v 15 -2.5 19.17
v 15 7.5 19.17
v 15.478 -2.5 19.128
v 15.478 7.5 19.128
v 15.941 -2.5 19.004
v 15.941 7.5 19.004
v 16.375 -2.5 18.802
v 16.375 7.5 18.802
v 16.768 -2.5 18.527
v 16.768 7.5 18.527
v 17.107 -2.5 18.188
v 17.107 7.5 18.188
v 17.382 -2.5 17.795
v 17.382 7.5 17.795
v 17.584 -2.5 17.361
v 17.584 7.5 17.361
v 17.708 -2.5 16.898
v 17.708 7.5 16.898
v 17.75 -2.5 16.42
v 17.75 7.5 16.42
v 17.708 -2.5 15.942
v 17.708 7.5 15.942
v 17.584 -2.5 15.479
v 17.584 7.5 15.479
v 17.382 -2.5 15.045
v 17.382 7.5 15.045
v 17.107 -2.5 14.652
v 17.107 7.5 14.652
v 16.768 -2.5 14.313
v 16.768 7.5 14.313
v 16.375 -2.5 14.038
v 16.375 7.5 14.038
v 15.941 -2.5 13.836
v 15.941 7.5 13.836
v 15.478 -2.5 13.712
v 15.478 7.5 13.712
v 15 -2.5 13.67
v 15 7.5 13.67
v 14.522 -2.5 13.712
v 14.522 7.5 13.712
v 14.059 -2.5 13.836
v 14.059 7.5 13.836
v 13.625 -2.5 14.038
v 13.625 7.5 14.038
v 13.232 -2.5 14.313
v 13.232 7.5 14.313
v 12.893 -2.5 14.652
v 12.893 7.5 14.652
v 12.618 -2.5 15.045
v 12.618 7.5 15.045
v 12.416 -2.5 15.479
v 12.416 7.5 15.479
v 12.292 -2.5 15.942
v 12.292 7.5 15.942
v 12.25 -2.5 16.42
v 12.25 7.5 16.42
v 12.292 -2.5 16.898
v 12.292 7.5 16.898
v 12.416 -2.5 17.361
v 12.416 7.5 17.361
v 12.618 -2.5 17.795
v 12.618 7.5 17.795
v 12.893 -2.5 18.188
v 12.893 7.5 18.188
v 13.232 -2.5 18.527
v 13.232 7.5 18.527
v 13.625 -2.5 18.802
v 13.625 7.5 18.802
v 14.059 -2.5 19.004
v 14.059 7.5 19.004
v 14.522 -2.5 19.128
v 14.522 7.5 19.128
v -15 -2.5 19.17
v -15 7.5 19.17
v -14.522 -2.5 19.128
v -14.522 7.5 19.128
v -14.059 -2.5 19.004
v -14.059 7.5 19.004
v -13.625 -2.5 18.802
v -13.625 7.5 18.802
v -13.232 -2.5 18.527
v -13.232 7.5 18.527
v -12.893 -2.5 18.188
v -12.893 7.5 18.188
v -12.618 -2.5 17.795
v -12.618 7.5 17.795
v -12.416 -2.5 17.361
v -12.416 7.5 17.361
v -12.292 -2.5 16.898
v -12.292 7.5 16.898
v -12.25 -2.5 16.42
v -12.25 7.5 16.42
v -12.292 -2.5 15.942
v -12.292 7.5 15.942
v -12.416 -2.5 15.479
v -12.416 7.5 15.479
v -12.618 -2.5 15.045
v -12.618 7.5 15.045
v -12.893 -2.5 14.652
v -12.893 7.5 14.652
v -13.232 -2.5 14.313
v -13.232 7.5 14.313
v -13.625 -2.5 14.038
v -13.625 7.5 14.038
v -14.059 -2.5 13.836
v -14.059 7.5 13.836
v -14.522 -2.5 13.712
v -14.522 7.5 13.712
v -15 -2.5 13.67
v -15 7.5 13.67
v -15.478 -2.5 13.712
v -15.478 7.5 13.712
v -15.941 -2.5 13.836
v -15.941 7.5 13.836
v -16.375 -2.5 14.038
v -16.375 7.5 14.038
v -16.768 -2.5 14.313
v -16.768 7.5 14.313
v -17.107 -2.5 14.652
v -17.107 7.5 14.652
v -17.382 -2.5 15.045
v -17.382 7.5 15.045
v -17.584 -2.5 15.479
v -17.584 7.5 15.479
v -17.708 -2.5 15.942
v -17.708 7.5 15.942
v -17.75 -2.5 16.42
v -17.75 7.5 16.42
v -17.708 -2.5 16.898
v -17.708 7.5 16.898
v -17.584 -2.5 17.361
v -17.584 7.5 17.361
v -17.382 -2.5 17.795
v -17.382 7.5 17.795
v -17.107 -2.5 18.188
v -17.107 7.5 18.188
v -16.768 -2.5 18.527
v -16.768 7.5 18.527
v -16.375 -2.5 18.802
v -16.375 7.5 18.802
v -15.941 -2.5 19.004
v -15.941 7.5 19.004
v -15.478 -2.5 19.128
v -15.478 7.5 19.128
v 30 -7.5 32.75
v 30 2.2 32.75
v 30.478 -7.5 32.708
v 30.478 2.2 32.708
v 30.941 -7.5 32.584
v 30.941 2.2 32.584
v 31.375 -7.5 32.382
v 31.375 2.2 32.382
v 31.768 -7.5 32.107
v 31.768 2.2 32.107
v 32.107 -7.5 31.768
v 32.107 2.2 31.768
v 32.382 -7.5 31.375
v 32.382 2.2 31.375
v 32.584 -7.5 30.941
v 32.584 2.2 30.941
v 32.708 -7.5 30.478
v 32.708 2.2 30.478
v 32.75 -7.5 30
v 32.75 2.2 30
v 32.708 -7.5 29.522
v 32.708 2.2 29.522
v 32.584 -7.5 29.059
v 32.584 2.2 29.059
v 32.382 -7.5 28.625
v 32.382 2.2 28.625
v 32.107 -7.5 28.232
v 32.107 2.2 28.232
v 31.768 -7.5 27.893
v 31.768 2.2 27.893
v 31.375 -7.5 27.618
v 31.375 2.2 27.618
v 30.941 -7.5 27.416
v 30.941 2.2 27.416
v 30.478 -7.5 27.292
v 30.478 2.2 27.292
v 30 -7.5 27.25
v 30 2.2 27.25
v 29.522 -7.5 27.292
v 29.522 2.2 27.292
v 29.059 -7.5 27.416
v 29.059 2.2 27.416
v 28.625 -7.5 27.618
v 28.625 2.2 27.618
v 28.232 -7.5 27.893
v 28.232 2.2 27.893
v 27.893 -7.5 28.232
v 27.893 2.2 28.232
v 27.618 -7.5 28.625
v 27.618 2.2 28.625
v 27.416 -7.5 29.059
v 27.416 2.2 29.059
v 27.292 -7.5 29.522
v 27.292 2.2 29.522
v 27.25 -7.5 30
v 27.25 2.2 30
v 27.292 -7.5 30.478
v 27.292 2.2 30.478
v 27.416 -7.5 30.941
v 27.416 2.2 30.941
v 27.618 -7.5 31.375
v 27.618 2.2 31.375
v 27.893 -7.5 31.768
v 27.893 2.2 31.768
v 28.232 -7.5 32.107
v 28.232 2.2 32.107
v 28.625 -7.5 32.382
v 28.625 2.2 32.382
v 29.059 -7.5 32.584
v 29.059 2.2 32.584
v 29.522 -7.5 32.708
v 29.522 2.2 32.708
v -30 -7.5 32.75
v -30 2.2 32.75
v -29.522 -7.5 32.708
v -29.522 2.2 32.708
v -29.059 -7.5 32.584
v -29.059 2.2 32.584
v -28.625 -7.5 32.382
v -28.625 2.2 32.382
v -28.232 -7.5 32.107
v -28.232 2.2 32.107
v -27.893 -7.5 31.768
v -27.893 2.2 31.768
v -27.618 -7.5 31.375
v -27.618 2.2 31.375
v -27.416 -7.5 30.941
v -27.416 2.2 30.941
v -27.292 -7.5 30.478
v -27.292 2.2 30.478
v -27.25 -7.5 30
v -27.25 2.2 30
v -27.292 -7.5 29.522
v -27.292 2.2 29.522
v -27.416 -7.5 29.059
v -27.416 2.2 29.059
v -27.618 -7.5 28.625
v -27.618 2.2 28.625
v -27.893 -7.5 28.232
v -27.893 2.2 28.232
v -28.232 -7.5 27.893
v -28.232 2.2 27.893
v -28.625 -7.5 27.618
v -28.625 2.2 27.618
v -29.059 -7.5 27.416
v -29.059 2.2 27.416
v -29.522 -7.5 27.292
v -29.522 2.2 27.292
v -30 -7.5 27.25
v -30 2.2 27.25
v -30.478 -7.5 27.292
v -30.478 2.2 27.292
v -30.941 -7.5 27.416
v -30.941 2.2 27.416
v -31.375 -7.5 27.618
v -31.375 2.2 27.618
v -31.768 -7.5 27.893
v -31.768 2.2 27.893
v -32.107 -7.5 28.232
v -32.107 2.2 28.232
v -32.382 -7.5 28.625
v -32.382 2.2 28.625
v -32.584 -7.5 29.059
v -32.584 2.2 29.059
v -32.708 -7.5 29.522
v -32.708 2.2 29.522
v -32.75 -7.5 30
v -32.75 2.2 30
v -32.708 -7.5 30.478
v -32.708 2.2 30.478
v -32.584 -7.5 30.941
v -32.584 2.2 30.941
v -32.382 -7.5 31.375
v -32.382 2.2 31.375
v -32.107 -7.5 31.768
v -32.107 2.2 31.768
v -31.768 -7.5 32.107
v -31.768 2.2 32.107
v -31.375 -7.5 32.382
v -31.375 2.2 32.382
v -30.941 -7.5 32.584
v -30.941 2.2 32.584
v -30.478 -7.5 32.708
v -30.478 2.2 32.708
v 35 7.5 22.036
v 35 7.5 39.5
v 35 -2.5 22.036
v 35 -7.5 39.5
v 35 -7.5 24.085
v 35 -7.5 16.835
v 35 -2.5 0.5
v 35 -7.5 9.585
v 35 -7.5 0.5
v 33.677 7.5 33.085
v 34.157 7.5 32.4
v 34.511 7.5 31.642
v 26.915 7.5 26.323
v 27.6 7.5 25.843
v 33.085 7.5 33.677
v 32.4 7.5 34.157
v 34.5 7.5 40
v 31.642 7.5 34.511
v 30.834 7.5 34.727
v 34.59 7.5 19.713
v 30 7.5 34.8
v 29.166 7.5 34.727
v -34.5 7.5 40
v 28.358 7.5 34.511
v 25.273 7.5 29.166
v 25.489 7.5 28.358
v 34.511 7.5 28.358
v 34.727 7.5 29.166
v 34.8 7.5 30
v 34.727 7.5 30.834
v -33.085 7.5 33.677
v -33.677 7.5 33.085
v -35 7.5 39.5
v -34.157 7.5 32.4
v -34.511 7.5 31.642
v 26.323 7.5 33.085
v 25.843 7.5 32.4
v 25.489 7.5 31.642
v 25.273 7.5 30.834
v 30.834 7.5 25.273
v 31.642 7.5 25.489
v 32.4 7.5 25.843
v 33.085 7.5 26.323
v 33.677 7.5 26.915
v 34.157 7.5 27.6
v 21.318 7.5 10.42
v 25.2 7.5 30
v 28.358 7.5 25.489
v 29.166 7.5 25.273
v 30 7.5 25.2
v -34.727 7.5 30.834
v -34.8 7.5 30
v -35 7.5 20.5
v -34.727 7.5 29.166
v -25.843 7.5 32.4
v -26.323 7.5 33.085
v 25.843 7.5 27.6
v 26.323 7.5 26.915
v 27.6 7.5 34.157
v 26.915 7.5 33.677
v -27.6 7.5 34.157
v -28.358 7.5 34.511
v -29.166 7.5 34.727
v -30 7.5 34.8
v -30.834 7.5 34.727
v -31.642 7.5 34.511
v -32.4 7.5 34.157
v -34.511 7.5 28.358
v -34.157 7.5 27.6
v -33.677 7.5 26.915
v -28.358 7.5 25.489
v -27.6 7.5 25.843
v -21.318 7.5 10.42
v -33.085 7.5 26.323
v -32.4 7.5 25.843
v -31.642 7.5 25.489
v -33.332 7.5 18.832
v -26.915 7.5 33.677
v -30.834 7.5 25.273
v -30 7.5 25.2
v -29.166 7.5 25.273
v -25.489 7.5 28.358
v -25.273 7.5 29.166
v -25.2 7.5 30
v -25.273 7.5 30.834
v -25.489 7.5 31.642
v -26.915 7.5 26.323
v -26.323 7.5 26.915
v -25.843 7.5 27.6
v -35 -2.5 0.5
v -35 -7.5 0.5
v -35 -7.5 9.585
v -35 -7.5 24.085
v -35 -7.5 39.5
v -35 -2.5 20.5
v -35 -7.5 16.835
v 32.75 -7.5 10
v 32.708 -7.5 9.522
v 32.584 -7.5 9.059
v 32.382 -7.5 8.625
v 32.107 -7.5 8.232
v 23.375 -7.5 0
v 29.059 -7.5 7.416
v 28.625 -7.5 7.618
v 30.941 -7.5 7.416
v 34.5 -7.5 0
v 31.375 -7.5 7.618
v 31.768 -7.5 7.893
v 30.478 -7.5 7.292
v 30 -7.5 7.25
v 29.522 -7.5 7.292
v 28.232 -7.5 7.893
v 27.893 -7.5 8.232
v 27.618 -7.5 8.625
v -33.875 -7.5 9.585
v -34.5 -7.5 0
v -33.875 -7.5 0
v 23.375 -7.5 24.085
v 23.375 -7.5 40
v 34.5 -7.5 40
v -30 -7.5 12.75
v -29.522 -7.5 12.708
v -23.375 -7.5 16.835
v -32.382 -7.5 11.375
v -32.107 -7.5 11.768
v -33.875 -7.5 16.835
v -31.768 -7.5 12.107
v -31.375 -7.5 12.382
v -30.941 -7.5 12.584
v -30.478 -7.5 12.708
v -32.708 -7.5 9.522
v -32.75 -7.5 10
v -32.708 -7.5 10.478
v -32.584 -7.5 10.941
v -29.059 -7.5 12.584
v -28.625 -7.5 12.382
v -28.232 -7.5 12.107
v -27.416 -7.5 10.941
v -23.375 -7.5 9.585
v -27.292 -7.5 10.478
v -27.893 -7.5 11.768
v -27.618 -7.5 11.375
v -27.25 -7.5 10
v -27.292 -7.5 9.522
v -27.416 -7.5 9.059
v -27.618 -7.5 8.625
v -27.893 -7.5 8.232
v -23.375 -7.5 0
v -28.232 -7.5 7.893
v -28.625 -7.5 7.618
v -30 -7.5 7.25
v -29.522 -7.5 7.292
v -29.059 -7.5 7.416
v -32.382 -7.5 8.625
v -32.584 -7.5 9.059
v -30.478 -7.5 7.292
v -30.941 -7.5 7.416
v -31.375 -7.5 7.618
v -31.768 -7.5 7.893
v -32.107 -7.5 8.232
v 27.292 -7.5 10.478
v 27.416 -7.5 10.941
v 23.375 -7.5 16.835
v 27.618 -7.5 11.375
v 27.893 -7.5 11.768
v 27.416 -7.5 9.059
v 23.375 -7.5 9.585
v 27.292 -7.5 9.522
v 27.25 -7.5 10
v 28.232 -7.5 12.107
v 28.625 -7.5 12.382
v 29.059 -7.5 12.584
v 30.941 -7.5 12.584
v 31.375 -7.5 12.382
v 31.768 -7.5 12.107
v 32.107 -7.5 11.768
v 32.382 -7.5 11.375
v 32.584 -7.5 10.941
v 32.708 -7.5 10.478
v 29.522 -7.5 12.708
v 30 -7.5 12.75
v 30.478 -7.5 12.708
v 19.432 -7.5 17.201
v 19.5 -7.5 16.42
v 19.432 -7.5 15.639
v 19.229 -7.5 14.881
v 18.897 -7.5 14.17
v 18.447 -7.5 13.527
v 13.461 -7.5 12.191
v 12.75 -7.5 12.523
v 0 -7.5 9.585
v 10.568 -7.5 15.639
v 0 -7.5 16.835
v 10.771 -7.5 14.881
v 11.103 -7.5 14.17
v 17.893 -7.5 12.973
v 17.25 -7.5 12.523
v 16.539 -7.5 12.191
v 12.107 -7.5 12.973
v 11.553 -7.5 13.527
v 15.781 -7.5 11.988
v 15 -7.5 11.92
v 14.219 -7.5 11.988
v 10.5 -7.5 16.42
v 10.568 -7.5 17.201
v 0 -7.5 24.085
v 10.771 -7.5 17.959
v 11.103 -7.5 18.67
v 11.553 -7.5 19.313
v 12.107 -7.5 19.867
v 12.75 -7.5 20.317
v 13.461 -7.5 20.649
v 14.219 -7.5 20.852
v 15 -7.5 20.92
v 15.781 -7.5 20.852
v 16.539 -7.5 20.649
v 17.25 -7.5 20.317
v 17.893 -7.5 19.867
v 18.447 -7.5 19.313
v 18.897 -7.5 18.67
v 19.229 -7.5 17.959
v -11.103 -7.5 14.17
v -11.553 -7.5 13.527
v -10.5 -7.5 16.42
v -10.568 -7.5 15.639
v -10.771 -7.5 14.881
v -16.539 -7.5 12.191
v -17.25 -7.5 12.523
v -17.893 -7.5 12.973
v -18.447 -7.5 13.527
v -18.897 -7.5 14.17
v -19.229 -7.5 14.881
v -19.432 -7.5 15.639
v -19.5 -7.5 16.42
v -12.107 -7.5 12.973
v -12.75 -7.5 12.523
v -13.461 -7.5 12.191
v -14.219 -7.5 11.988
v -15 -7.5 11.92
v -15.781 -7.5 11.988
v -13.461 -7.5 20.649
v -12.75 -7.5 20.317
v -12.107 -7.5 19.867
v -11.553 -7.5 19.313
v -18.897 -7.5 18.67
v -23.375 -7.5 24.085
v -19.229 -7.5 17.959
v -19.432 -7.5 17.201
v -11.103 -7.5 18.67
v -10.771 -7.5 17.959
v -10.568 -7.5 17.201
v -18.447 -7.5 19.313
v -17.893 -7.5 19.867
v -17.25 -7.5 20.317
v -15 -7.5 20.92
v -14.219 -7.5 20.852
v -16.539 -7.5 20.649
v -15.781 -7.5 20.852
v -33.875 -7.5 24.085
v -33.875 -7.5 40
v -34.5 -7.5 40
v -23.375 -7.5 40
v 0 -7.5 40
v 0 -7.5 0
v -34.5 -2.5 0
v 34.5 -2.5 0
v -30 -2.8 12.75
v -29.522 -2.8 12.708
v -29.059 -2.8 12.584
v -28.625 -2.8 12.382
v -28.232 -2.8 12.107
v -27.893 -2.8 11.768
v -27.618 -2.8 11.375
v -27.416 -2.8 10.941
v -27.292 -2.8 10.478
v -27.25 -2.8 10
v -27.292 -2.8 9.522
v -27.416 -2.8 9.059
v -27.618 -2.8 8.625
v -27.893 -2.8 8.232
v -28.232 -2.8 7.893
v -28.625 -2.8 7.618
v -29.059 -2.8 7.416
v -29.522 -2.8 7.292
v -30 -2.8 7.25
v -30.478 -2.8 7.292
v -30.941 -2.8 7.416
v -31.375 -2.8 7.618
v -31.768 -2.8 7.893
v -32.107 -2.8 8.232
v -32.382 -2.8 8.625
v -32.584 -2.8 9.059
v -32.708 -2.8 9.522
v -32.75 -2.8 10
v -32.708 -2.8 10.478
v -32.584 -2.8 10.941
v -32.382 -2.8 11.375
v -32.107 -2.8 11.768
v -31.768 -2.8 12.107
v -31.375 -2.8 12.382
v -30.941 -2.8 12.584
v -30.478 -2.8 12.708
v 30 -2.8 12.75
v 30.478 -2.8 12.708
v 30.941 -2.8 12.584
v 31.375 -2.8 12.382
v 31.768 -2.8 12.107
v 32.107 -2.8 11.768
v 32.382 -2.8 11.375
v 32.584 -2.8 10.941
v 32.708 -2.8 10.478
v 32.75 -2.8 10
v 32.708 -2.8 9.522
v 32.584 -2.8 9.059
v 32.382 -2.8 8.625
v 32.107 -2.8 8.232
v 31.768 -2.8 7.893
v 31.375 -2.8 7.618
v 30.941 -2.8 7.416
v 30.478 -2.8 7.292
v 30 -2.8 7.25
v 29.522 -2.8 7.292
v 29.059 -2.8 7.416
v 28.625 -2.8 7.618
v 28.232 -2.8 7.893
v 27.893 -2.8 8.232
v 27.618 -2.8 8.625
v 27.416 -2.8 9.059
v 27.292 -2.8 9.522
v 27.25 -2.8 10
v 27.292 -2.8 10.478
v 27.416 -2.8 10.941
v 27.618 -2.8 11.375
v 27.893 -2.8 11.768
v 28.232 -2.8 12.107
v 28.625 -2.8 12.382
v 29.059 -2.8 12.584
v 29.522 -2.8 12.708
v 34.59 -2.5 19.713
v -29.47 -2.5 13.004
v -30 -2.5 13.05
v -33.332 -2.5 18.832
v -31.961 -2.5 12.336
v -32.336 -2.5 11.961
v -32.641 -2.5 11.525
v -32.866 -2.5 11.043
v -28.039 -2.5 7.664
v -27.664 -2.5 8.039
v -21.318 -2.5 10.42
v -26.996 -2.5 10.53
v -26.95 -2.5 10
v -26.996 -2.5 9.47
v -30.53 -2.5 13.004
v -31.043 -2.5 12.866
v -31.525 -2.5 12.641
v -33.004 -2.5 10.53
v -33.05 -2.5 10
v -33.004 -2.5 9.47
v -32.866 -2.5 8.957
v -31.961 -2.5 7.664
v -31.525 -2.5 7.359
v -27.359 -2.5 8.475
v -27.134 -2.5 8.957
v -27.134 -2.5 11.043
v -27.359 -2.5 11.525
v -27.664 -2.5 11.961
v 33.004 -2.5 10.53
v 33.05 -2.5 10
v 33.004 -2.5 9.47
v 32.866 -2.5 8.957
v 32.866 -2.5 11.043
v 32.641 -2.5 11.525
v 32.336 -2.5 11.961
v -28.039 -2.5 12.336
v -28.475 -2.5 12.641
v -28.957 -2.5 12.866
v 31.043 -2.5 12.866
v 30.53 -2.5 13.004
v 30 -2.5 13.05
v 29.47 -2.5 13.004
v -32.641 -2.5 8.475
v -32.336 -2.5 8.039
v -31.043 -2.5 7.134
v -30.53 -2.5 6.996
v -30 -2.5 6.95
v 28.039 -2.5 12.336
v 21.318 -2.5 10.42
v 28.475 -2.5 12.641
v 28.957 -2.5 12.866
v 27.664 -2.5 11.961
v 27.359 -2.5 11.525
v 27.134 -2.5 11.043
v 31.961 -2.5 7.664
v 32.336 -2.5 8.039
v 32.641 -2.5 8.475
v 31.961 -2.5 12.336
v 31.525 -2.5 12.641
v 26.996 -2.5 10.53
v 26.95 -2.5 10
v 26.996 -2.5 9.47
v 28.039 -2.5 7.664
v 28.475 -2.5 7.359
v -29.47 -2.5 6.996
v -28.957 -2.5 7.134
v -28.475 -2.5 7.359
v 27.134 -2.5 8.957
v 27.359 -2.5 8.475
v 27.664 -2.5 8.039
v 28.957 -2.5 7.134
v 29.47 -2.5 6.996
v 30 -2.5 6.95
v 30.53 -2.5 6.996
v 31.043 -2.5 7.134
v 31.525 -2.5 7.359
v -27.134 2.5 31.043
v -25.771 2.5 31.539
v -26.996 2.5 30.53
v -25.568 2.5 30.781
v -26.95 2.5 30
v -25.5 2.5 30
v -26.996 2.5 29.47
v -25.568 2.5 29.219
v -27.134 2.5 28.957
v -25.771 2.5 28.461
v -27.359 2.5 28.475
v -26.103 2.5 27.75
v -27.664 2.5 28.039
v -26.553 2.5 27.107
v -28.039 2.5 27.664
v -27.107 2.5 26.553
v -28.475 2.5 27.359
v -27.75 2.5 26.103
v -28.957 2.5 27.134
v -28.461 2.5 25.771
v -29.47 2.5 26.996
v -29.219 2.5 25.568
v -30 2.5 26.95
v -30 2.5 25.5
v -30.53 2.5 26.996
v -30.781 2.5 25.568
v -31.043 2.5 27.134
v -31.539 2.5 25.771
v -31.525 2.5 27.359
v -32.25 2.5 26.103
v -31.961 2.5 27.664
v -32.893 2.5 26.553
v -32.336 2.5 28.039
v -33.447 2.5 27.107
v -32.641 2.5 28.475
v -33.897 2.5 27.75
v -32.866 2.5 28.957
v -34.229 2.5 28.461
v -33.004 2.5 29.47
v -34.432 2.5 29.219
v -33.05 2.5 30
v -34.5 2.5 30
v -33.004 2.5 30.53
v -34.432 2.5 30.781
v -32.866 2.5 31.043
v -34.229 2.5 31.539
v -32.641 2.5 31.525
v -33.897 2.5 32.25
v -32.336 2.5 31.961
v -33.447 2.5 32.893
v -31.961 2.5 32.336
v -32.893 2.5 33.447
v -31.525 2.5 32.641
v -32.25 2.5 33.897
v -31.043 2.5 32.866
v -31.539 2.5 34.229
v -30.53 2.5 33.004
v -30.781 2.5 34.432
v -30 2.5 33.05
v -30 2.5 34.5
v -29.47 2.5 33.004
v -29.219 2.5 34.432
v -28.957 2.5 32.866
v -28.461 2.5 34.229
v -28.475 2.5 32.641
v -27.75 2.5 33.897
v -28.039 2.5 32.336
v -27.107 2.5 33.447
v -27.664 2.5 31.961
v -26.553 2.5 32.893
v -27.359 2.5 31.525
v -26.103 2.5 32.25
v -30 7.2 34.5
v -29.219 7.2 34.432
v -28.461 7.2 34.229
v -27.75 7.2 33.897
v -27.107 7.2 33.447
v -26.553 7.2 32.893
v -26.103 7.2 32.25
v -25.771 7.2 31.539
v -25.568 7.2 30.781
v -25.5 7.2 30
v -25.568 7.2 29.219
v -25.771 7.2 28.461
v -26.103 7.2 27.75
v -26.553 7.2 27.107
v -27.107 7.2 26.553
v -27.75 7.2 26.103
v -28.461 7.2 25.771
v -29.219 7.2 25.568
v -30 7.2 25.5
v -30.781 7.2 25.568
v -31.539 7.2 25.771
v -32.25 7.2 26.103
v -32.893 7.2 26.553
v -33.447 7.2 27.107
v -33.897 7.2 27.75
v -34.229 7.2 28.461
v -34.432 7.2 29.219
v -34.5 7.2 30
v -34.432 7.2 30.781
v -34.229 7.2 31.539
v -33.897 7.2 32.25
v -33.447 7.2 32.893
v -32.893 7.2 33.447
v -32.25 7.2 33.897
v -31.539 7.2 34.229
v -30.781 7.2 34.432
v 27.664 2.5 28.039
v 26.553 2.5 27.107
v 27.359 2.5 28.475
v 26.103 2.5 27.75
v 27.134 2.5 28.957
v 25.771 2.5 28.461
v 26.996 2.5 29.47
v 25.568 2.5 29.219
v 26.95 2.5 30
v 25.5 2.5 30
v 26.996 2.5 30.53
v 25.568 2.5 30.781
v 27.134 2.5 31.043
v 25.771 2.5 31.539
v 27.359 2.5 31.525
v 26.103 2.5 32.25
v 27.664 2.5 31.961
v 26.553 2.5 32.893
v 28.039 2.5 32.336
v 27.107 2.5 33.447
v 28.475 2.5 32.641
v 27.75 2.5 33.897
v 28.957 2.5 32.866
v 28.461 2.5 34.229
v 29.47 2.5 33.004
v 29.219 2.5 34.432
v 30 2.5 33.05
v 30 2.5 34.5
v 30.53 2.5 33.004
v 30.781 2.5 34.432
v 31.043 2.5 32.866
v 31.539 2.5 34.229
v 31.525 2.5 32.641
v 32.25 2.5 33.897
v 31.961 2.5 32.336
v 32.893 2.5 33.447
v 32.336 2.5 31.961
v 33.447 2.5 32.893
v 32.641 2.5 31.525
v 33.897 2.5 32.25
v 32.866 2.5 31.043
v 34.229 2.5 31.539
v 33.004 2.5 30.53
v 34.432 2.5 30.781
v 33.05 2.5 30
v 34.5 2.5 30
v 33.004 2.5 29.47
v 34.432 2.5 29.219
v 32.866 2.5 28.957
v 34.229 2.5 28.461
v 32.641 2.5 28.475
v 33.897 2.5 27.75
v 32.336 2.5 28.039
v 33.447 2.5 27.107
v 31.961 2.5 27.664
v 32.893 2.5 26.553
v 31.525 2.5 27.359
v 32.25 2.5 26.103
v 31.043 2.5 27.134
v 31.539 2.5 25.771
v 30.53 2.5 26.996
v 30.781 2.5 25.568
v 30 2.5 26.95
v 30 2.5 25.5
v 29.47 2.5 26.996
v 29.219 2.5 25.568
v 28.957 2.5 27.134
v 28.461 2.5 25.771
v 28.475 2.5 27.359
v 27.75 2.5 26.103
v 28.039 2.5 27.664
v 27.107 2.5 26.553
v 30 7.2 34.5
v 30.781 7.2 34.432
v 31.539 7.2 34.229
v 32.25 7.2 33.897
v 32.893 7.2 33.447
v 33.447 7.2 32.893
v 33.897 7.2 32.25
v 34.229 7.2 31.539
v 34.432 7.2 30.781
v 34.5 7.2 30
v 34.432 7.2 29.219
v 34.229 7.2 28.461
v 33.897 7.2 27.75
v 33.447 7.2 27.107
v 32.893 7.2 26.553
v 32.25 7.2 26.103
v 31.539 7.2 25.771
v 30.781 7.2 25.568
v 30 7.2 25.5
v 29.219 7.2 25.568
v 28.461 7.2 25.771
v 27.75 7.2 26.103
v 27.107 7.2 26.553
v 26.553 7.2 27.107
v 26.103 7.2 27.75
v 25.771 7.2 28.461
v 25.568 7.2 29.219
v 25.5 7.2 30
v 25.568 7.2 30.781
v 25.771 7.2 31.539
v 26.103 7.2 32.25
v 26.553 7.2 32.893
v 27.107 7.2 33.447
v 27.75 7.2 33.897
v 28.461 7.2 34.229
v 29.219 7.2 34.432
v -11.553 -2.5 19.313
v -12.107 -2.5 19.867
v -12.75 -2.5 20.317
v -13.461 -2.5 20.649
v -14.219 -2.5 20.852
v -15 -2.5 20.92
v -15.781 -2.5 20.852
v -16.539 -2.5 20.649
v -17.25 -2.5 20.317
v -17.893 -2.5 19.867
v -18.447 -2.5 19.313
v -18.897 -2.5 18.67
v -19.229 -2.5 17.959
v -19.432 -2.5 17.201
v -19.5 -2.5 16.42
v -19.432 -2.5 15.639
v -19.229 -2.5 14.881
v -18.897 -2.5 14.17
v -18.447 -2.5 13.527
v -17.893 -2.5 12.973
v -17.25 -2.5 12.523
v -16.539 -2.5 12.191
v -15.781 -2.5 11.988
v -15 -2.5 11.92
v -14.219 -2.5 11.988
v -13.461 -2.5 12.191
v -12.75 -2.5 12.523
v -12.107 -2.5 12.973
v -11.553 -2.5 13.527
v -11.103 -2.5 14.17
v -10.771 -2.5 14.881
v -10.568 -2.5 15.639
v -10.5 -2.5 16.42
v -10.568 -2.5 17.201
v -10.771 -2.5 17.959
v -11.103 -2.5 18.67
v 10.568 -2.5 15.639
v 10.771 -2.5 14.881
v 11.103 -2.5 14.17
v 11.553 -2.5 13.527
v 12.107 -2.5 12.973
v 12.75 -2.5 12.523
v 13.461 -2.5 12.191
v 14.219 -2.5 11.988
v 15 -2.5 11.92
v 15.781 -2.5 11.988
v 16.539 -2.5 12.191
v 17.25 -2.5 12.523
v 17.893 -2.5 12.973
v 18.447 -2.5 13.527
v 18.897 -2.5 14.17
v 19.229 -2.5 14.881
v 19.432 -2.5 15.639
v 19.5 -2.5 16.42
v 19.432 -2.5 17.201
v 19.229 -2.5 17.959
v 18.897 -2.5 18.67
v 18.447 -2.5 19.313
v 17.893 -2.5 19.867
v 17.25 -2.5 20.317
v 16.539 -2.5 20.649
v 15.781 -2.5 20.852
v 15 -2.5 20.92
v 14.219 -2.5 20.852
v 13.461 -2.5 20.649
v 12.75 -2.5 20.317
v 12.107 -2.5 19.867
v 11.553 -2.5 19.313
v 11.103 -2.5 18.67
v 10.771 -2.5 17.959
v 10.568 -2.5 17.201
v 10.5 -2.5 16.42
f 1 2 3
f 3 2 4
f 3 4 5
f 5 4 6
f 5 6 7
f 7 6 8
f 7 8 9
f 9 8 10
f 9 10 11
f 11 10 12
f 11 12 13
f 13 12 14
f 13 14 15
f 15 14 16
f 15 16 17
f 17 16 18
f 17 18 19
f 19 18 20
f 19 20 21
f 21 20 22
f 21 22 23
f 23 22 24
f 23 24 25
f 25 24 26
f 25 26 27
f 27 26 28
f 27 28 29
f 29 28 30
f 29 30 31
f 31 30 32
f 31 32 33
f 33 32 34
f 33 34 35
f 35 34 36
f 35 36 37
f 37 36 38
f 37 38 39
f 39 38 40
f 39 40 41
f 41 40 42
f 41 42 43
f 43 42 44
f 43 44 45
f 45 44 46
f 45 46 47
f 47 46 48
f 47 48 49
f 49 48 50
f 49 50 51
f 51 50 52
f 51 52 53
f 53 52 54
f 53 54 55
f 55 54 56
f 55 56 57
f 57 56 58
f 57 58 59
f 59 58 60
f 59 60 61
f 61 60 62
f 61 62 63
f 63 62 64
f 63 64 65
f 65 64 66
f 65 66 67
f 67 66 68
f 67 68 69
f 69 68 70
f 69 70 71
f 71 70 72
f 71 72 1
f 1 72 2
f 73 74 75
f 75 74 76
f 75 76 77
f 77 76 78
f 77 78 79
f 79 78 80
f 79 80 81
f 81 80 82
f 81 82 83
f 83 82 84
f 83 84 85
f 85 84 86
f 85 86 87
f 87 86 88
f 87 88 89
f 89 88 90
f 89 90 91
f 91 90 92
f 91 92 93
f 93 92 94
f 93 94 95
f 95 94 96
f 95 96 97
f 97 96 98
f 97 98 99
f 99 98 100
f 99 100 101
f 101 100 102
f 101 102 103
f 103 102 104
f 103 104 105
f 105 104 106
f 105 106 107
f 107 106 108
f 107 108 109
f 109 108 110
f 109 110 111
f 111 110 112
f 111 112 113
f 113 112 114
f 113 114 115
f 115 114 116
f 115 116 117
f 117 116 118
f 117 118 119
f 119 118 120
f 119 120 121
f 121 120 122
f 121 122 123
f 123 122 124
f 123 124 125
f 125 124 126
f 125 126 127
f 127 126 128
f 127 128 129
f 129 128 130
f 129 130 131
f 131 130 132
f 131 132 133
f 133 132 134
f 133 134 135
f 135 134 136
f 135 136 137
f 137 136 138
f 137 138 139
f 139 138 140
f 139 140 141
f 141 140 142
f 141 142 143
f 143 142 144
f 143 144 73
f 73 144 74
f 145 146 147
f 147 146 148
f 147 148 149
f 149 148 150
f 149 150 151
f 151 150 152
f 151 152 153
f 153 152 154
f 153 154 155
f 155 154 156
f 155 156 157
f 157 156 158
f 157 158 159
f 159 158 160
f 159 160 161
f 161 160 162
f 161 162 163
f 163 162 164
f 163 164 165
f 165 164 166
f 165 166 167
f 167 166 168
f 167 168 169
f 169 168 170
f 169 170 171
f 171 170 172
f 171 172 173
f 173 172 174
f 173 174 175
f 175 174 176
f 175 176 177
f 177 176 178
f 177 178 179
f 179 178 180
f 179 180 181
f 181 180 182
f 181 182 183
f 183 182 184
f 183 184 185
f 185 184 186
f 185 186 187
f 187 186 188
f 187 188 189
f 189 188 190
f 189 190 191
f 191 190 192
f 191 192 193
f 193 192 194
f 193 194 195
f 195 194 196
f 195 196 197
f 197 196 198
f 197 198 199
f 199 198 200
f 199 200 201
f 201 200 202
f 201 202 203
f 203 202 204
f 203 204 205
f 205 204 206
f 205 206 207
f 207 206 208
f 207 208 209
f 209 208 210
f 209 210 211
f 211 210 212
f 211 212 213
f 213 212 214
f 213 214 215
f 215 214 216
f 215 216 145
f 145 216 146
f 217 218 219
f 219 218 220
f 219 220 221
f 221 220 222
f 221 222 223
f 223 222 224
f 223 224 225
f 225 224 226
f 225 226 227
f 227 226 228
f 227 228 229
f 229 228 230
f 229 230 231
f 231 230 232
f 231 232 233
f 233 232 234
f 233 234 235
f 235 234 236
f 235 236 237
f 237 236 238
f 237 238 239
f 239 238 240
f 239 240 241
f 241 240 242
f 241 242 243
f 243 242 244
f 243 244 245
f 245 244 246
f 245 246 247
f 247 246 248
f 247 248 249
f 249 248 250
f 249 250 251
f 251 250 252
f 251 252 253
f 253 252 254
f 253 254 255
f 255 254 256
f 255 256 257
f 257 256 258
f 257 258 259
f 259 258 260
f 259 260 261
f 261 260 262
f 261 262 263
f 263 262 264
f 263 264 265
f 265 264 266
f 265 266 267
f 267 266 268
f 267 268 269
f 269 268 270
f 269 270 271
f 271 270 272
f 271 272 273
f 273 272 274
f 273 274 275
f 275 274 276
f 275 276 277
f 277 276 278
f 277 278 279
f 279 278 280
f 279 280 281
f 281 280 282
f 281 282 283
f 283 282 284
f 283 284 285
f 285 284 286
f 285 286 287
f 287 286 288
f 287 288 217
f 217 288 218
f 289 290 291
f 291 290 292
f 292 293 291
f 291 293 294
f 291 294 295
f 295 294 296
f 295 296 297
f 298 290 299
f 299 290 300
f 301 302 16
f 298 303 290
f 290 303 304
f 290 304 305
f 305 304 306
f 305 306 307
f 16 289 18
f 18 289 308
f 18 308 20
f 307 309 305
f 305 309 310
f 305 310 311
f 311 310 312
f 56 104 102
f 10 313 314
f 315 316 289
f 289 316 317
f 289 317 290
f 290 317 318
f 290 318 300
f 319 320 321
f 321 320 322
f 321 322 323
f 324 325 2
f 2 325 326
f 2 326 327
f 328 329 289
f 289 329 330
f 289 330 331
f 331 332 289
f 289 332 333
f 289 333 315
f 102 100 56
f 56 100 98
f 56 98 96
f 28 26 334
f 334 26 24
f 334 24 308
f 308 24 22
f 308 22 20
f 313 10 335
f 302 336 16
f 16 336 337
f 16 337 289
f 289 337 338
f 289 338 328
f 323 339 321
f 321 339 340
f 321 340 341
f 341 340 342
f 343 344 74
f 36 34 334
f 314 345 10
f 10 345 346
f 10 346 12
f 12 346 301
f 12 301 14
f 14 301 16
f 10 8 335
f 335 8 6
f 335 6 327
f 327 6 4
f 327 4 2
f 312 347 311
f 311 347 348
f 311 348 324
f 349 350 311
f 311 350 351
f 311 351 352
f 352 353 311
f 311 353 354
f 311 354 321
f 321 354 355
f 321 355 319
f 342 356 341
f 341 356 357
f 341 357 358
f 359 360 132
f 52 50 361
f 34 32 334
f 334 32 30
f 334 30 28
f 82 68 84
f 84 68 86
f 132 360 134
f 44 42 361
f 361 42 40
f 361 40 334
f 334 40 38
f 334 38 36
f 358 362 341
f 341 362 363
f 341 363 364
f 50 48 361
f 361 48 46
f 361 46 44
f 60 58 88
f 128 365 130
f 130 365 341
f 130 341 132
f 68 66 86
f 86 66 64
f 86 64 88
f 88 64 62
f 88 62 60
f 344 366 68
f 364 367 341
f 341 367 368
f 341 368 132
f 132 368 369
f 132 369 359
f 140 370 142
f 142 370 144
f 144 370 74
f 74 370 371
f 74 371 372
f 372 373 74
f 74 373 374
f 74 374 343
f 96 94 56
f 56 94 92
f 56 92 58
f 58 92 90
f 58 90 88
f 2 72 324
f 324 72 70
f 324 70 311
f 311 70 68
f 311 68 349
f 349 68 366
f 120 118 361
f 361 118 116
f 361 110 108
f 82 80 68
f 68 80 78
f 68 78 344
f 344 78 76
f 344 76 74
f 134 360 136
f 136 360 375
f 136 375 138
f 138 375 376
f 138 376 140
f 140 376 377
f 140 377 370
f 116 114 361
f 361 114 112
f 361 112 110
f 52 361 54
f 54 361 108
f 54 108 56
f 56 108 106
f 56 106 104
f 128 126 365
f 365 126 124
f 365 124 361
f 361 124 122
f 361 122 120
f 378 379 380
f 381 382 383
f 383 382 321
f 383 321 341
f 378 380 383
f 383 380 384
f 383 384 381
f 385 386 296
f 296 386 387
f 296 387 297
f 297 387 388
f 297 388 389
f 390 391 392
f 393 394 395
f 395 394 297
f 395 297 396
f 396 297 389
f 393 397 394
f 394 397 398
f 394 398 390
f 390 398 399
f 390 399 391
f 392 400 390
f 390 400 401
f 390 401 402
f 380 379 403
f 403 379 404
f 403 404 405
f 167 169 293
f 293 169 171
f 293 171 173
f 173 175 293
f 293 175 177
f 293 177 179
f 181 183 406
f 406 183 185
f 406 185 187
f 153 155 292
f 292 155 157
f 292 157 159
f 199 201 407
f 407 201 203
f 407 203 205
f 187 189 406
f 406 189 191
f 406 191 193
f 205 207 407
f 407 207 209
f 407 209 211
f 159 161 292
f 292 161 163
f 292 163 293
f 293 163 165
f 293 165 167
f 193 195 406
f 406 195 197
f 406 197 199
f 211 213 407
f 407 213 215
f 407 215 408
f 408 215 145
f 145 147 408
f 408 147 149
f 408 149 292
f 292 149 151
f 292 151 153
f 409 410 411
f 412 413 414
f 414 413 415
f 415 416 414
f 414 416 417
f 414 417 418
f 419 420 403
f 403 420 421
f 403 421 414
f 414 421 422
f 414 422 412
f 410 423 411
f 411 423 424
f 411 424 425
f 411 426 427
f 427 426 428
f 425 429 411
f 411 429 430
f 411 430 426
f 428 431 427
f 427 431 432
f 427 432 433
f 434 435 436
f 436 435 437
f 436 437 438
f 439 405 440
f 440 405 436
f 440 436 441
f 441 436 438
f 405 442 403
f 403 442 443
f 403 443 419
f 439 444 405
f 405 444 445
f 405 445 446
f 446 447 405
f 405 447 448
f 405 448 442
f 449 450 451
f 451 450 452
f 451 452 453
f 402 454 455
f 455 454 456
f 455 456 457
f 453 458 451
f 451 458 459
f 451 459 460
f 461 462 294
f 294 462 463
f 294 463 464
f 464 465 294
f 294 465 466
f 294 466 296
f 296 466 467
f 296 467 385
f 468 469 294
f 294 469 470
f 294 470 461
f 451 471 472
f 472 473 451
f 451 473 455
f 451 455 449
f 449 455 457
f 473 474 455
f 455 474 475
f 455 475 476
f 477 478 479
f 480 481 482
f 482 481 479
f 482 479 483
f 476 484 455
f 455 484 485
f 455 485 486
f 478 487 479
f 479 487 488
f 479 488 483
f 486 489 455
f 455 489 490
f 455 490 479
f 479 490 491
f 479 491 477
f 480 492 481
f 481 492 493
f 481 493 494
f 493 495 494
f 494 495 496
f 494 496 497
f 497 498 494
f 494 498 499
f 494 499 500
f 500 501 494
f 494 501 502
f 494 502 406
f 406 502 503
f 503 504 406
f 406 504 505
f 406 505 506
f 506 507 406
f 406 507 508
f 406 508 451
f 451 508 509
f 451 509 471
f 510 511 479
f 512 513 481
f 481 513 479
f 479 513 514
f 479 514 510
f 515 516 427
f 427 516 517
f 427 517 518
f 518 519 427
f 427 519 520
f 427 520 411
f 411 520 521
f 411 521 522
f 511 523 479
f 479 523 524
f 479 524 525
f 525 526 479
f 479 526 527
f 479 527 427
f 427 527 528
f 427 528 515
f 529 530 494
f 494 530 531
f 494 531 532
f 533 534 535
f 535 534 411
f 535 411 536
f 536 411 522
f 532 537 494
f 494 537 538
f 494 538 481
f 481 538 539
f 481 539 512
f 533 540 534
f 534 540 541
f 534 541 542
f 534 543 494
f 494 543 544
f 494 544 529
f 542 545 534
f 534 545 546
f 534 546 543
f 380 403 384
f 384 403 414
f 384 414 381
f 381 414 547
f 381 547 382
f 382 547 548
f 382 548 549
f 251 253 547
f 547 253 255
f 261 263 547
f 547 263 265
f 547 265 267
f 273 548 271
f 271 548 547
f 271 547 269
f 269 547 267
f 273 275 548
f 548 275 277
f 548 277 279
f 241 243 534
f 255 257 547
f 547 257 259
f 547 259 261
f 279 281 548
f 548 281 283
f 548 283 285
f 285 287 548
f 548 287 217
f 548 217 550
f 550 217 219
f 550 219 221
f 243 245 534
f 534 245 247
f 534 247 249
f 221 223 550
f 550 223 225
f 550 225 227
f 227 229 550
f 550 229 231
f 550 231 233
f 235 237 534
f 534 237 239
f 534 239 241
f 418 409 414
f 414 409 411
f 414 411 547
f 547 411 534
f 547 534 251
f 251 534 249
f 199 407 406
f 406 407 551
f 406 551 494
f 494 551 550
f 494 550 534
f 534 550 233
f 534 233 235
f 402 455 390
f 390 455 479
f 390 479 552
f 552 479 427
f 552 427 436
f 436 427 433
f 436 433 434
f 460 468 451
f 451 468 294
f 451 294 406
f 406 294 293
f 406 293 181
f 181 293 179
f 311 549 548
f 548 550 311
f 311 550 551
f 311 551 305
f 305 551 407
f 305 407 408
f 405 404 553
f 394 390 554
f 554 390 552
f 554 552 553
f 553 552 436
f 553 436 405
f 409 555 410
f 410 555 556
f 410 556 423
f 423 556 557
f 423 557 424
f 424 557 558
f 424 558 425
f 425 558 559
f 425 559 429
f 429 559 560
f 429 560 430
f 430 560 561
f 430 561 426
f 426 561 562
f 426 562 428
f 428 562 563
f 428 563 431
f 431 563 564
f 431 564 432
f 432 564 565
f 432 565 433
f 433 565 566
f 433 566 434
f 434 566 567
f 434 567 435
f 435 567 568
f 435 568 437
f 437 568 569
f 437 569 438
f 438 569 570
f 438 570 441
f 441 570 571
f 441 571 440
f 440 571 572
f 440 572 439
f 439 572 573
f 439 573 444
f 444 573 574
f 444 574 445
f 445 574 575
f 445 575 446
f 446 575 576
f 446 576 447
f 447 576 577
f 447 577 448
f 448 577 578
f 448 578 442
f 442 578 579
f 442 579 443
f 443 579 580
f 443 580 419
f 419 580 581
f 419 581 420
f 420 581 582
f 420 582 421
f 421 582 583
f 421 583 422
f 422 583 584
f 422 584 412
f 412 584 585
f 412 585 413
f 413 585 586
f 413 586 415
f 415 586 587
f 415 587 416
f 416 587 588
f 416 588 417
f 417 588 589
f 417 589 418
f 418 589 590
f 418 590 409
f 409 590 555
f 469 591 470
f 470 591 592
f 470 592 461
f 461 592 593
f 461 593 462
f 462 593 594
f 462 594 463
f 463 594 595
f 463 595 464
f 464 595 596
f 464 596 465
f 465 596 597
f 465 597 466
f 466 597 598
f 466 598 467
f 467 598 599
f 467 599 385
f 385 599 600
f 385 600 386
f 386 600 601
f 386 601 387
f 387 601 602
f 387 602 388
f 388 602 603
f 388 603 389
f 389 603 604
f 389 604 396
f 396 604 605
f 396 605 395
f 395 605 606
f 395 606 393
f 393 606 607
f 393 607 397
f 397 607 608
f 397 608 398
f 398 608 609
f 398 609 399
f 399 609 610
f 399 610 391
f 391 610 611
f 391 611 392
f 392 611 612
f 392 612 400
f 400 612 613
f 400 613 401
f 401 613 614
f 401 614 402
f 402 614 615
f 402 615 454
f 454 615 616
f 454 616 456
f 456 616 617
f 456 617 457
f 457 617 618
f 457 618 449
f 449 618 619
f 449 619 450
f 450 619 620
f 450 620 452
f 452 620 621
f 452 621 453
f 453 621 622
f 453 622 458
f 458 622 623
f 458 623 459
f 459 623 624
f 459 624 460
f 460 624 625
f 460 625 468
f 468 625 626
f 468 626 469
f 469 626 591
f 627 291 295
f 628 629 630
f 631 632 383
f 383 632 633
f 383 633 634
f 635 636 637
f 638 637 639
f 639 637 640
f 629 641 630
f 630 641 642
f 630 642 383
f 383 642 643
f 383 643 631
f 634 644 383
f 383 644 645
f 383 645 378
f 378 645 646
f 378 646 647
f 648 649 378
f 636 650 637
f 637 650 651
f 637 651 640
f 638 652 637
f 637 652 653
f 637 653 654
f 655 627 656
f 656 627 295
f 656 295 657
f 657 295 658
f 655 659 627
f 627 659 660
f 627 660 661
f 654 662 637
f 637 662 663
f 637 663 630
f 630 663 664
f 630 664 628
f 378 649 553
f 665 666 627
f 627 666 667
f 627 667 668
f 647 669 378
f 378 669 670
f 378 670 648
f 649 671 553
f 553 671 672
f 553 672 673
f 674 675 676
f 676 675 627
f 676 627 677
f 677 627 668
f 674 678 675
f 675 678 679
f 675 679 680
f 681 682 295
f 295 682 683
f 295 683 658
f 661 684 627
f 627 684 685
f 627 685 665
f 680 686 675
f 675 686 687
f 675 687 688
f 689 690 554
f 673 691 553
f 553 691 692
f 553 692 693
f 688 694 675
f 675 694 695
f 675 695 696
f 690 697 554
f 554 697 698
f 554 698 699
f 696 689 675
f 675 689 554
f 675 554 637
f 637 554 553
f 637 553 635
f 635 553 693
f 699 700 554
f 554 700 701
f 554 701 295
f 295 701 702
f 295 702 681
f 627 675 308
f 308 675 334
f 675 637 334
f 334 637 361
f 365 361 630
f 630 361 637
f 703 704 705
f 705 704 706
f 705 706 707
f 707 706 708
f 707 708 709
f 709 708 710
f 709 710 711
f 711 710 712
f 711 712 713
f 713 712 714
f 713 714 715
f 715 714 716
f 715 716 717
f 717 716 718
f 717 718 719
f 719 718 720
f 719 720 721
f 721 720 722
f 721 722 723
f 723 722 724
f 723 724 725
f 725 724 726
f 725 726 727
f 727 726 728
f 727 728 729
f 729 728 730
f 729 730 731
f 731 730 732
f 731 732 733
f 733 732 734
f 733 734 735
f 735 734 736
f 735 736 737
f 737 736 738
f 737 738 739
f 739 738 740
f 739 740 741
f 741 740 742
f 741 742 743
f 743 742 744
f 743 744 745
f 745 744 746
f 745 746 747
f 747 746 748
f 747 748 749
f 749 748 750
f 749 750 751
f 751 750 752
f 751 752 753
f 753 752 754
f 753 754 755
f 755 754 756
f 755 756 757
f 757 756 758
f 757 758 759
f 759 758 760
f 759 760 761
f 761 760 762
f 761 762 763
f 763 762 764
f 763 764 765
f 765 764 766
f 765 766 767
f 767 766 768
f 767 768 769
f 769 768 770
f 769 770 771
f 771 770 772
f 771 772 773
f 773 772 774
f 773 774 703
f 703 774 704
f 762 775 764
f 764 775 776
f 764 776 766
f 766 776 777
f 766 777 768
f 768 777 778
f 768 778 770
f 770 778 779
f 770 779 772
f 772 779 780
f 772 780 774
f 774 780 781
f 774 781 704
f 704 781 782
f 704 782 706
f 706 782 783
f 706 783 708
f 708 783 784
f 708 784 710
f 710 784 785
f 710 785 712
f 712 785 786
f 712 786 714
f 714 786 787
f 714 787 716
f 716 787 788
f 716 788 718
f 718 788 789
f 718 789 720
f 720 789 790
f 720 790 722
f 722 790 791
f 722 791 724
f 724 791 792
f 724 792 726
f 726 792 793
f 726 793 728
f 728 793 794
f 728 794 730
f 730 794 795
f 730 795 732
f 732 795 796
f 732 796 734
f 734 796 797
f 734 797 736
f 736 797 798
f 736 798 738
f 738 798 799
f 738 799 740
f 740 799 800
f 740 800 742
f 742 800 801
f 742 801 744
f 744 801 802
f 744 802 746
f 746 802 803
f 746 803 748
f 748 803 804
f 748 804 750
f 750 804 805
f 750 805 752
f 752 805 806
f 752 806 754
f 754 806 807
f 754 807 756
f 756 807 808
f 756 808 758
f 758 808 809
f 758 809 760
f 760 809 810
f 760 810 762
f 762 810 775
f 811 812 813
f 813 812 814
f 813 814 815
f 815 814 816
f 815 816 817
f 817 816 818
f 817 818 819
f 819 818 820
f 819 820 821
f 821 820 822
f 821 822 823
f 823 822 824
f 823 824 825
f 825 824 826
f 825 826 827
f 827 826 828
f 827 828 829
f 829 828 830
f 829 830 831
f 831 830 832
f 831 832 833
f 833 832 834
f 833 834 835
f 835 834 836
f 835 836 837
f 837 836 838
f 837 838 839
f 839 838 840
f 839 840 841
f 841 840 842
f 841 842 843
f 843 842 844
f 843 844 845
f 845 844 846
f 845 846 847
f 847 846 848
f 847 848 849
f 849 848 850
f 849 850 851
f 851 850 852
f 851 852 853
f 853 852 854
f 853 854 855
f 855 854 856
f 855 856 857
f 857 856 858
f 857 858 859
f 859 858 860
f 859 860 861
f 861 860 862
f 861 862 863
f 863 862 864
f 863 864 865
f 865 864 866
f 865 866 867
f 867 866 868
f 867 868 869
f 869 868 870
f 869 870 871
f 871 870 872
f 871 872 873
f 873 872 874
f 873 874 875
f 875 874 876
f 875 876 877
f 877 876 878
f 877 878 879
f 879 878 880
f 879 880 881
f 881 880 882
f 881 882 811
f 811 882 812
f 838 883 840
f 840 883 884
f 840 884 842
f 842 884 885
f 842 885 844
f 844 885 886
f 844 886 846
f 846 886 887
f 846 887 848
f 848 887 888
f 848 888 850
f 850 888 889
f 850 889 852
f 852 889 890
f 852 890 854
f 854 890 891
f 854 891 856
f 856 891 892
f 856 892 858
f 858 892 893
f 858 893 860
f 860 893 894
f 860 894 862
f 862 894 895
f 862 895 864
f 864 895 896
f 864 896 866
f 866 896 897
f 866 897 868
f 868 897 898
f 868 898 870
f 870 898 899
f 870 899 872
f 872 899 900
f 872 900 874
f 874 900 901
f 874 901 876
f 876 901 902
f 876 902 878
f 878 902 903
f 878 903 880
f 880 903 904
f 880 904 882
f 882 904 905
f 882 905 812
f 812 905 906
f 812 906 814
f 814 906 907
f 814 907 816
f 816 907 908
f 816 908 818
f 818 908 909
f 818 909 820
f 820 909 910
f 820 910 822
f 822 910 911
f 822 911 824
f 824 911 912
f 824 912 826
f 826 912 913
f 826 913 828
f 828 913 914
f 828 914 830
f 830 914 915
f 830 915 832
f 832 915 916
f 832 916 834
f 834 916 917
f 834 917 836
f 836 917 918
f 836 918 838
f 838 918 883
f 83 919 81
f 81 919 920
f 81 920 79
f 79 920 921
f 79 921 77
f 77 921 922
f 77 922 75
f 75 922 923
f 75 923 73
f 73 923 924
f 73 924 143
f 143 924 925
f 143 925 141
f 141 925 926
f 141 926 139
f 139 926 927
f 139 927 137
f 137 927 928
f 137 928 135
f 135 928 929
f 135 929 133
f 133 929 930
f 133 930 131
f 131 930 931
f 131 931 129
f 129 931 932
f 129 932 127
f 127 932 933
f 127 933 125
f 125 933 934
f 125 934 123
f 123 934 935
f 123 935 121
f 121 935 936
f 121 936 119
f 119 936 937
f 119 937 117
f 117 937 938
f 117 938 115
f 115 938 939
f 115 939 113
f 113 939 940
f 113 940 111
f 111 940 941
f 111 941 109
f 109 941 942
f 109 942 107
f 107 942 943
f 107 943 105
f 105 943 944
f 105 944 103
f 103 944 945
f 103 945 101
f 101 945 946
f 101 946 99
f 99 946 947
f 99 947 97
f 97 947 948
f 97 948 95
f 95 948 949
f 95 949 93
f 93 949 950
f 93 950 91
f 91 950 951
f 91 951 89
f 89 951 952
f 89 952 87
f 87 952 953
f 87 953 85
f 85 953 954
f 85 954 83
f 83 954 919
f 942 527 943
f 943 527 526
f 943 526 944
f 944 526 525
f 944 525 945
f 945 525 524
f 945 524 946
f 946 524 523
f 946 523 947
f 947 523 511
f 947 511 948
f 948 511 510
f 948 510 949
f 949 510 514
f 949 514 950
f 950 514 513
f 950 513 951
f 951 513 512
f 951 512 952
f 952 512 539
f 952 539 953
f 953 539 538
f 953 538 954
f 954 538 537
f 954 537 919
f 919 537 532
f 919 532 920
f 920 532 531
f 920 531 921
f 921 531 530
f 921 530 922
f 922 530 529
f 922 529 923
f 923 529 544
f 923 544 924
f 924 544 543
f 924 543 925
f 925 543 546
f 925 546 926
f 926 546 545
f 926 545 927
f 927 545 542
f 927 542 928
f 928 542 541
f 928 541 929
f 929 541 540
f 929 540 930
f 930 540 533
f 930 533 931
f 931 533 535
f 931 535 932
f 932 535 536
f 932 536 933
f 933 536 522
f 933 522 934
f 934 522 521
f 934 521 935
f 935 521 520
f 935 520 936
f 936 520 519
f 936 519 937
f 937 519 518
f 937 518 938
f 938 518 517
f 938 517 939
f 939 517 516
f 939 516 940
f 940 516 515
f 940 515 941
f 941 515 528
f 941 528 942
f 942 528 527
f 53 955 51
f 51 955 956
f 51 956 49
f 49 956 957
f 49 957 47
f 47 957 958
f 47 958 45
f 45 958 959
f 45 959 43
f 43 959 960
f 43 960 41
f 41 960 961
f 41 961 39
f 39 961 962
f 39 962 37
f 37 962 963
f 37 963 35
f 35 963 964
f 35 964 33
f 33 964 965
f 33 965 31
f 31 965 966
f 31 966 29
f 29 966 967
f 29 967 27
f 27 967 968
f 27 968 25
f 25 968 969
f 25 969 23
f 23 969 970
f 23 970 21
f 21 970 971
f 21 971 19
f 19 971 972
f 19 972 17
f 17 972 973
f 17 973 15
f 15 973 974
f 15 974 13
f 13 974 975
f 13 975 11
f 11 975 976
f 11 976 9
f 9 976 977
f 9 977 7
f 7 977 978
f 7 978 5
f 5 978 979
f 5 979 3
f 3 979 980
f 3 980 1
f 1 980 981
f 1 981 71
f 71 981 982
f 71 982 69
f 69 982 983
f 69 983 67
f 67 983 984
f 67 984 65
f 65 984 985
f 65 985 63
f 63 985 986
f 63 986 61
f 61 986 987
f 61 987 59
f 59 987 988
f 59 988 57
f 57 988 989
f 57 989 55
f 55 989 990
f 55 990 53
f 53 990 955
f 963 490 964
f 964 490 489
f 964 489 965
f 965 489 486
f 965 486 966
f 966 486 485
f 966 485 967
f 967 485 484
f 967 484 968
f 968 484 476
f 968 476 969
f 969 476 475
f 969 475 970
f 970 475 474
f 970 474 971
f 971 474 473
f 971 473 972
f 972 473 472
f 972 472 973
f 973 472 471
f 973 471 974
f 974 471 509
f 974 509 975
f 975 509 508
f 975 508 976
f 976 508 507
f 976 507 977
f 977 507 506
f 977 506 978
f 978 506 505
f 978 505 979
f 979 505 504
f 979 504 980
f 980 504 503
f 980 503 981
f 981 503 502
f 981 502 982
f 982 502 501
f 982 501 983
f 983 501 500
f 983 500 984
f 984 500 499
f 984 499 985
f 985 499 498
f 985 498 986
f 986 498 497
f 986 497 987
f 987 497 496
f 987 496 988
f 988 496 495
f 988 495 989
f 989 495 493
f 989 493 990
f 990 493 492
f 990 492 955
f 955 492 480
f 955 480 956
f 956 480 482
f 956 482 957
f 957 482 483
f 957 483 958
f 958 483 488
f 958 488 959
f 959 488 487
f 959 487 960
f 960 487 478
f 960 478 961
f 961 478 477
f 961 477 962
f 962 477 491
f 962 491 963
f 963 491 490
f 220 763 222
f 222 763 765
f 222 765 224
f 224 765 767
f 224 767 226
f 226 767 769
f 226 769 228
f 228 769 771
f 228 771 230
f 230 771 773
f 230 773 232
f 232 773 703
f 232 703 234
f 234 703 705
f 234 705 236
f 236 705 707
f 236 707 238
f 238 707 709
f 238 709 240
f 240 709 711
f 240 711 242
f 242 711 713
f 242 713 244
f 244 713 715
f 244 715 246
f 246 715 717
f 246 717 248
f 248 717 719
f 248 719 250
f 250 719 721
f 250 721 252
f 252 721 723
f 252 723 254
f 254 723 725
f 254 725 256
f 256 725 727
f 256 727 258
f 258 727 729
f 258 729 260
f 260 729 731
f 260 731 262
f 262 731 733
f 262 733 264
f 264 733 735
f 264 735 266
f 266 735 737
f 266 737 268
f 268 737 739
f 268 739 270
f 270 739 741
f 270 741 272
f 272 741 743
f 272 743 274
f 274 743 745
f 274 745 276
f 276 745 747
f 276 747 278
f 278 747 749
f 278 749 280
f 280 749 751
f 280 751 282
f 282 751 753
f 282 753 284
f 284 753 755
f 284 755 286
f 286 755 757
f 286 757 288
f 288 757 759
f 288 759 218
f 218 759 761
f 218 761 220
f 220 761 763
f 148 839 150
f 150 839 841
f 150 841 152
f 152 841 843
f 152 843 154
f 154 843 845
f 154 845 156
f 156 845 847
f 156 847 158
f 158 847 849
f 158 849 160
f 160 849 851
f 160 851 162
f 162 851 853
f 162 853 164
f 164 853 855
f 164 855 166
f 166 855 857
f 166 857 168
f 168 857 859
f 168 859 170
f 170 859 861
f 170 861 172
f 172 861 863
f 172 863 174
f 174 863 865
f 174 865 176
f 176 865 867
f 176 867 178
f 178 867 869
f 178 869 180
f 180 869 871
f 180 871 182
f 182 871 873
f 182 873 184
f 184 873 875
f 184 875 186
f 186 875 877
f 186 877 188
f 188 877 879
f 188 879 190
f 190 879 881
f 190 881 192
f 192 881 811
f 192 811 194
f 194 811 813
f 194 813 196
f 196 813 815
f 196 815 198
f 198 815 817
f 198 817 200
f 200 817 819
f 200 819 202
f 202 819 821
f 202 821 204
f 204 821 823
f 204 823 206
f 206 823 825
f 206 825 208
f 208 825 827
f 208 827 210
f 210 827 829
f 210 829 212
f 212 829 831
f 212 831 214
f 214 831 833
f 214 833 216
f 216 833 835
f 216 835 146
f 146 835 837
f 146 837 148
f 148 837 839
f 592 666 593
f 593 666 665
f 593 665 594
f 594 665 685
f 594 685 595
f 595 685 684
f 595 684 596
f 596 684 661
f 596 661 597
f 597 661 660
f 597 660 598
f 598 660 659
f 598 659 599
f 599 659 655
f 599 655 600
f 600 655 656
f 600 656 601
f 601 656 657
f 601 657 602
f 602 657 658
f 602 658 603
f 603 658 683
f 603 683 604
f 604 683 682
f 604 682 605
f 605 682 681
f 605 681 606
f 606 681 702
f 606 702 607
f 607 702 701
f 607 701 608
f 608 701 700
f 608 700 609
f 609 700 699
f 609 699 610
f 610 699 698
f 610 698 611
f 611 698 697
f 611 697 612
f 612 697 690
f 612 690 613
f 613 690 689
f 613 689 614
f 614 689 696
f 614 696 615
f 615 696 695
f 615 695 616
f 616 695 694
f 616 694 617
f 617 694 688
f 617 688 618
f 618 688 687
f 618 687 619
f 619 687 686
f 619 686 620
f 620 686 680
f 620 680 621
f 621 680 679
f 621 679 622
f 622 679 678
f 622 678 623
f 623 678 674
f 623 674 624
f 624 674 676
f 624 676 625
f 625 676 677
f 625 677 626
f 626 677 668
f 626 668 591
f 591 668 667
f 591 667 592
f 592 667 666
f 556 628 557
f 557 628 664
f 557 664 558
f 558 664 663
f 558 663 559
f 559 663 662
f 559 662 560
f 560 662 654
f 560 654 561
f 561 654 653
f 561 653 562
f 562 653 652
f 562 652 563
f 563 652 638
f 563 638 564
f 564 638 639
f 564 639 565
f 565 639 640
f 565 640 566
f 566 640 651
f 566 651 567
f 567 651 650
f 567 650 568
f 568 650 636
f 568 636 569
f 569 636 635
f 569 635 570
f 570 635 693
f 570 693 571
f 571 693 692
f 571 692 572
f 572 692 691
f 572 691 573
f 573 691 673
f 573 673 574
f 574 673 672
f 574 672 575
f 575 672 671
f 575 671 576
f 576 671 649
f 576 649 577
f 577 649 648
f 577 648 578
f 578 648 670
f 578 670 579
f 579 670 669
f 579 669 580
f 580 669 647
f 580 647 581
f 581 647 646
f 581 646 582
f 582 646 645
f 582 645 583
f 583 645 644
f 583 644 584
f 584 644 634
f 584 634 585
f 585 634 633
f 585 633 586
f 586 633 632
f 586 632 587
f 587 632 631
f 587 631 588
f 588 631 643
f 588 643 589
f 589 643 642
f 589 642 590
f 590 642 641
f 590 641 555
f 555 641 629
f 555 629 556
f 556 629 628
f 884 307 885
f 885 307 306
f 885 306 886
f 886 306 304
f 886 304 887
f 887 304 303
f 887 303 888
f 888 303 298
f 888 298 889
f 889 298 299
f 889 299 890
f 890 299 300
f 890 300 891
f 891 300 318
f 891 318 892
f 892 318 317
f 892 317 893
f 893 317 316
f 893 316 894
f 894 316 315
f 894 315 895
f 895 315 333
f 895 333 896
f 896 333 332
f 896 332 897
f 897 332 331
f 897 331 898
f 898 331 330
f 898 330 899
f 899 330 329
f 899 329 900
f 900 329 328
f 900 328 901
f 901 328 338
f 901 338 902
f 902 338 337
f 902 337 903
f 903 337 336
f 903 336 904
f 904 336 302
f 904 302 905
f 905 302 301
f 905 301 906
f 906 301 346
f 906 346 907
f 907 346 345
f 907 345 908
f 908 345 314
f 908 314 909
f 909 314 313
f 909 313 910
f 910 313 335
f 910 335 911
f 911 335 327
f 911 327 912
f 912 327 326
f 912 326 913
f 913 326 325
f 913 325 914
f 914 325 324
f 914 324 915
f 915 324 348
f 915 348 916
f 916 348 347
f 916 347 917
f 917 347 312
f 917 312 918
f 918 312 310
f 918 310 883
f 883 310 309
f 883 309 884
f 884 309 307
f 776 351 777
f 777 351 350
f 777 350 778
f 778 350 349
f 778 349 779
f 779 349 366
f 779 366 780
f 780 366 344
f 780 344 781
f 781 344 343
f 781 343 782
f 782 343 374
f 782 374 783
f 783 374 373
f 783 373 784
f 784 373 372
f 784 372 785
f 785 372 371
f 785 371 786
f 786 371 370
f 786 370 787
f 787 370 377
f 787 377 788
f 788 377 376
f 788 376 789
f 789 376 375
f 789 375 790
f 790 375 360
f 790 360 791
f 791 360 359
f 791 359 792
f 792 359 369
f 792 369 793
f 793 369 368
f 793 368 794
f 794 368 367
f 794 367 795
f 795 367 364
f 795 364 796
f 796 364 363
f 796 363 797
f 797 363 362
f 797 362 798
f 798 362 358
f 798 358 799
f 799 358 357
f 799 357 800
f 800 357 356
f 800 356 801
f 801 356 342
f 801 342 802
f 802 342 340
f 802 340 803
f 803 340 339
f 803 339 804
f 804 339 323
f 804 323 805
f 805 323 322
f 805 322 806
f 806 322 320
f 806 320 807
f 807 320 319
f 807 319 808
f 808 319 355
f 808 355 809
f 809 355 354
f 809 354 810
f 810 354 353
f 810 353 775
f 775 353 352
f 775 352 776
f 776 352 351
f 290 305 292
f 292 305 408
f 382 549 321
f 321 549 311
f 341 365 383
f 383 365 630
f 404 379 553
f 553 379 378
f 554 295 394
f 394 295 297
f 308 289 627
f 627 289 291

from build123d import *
from OCP.BRepFilletAPI import BRepFilletAPI_MakeChamfer

# Parameters (mm, degrees)
SKETCH1_W           = 70
SKETCH1_H           = 15
BOSS_EXTRUDE1_DEPTH = 40
SKETCH2_R           = 2.75
CUT_EXTRUDE1_DEPTH  = 56.226805086
SKETCH3_R           = 2.75
CUT_EXTRUDE2_DEPTH  = 56.226805086
CUT_EXTRUDE5_DEPTH  = 10
SKETCH4_R           = 4.5
CUT_EXTRUDE3_DEPTH  = 5
SKETCH5_R           = 4.5
CUT_EXTRUDE4_DEPTH  = 5
CHAMFER1_SIZE       = 0.3
CHAMFER2_SIZE       = 0.3
CHAMFER3_SIZE       = 0.5
CHAMFER3_SIZE2      = 2.03603283


with BuildPart() as part:
    # Sketch1 → Boss-Extrude1 (new body)
    with BuildSketch(Plane.XY):
        Rectangle(SKETCH1_W, SKETCH1_H)
    extrude(amount=BOSS_EXTRUDE1_DEPTH)

    # Sketch2 → Cut-Extrude1 (cut, through all)
    with BuildSketch(Plane(origin=(0, 7.5, 0), x_dir=(1, 0, 0), z_dir=(0, 1, 0))):
        with Locations(Location((-15, -16.42, 0), (0, 0, 270))):
            Circle(SKETCH2_R)
        with Locations(Location((15, -16.42, 0), (0, 0, 270))):
            Circle(SKETCH2_R)
    extrude(amount=-CUT_EXTRUDE1_DEPTH, mode=Mode.SUBTRACT)

    # Sketch3 → Cut-Extrude2 (cut, through all)
    with BuildSketch(Plane(origin=(0, 7.5, 0), x_dir=(1, 0, 0), z_dir=(0, 1, 0))):
        with Locations(Location((-30, -10, 0), (0, 0, 270))):
            Circle(SKETCH3_R)
        with Locations(Location((30, -10, 0), (0, 0, 90))):
            Circle(SKETCH3_R)
        with Locations(Location((-30, -30, 0), (0, 0, 270))):
            Circle(SKETCH3_R)
        with Locations(Location((30, -30, 0), (0, 0, 90))):
            Circle(SKETCH3_R)
    extrude(amount=-CUT_EXTRUDE2_DEPTH, mode=Mode.SUBTRACT)

    # Sketch7 → Cut-Extrude5 (cut)
    with BuildSketch(Plane(origin=(0, 7.5, 0), x_dir=(1, 0, 0), z_dir=(0, 1, 0))):
        Polygon((-35, 0), (35, 0), (35, -10.42), (35, -20), (21.318342095, -10.42), (-21.318342095, -10.42), (-35, -20), align=None)
    extrude(amount=-CUT_EXTRUDE5_DEPTH, mode=Mode.SUBTRACT)

    # Sketch4 → Cut-Extrude3 (cut)
    with BuildSketch(Plane(origin=(0, 7.5, 0), x_dir=(1, 0, 0), z_dir=(0, 1, 0))):
        with Locations((-30, -10)):
            Circle(SKETCH4_R)
        with Locations(Location((-30, -30, 0), (0, 0, 270))):
            Circle(SKETCH4_R)
        with Locations(Location((30, -30, 0), (0, 0, 270))):
            Circle(SKETCH4_R)
        with Locations((30, -10)):
            Circle(SKETCH4_R)
    extrude(amount=-CUT_EXTRUDE3_DEPTH, mode=Mode.SUBTRACT)

    # Sketch5 → Cut-Extrude4 (cut)
    with BuildSketch(Plane.XZ.offset(7.5)):
        with Locations(Location((-15, 16.42, 0), (0, 0, 270))):
            Circle(SKETCH5_R)
        with Locations(Location((15, 16.42, 0), (0, 0, 270))):
            Circle(SKETCH5_R)
    extrude(amount=-CUT_EXTRUDE4_DEPTH, mode=Mode.SUBTRACT)

    # Chamfer1
    chamfer1_edges = [part.edges().sort_by_distance(p)[0] for p in [
        (30, -2.5, 12.75),
        (-30, -2.5, 7.25),
        (30, 2.5, 32.75),
        (-30, 2.5, 27.25),
    ]]
    chamfer(chamfer1_edges, length=CHAMFER1_SIZE)

    # Chamfer2
    chamfer2_edges = [part.edges().sort_by_distance(p)[0] for p in [
        (30, 7.5, 25.5),
        (-30, 7.5, 25.5),
    ]]
    chamfer(chamfer2_edges, length=CHAMFER2_SIZE)

    # Chamfer3: one chamfer whose edges measure the first distance from different faces: ONE call of the kernel's chamfer builder (chamfer() names one face for all edges)
    chamfer3_edges_1 = [part.edges().sort_by_distance(p)[0] for p in [
        (-35, 0, 40),
        (-35, -5, 0),
        (35, 0, 40),
        (35, -5, 0),
    ]]
    chamfer3_edges_2 = [part.edges().sort_by_distance(p)[0] for p in [
        (-35, 2.5, 20),
    ]]
    chamfer3_side_2 = [part.faces().sort_by_distance(p)[0] for p in [
        (-35, -1.25, 25),
    ]]
    chamfer3_edges_3 = [part.edges().sort_by_distance(p)[0] for p in [
        (35, 2.5, 20),
    ]]
    chamfer3_side_3 = [part.faces().sort_by_distance(p)[0] for p in [
        (28.159171048, 2.5, 15.21),
    ]]
    chamfer3 = BRepFilletAPI_MakeChamfer(part.part.solid().wrapped)
    for e in chamfer3_edges_1:
        chamfer3.Add(CHAMFER3_SIZE, e.wrapped)
    for e in chamfer3_edges_2:
        chamfer3.Add(CHAMFER3_SIZE, CHAMFER3_SIZE2, e.wrapped, chamfer3_side_2[0].wrapped)  # the first distance lies on this face
    for e in chamfer3_edges_3:
        chamfer3.Add(CHAMFER3_SIZE, CHAMFER3_SIZE2, e.wrapped, chamfer3_side_3[0].wrapped)  # the first distance lies on this face
    add(Compound.cast(chamfer3.Shape()), mode=Mode.REPLACE)


solid = part.part
